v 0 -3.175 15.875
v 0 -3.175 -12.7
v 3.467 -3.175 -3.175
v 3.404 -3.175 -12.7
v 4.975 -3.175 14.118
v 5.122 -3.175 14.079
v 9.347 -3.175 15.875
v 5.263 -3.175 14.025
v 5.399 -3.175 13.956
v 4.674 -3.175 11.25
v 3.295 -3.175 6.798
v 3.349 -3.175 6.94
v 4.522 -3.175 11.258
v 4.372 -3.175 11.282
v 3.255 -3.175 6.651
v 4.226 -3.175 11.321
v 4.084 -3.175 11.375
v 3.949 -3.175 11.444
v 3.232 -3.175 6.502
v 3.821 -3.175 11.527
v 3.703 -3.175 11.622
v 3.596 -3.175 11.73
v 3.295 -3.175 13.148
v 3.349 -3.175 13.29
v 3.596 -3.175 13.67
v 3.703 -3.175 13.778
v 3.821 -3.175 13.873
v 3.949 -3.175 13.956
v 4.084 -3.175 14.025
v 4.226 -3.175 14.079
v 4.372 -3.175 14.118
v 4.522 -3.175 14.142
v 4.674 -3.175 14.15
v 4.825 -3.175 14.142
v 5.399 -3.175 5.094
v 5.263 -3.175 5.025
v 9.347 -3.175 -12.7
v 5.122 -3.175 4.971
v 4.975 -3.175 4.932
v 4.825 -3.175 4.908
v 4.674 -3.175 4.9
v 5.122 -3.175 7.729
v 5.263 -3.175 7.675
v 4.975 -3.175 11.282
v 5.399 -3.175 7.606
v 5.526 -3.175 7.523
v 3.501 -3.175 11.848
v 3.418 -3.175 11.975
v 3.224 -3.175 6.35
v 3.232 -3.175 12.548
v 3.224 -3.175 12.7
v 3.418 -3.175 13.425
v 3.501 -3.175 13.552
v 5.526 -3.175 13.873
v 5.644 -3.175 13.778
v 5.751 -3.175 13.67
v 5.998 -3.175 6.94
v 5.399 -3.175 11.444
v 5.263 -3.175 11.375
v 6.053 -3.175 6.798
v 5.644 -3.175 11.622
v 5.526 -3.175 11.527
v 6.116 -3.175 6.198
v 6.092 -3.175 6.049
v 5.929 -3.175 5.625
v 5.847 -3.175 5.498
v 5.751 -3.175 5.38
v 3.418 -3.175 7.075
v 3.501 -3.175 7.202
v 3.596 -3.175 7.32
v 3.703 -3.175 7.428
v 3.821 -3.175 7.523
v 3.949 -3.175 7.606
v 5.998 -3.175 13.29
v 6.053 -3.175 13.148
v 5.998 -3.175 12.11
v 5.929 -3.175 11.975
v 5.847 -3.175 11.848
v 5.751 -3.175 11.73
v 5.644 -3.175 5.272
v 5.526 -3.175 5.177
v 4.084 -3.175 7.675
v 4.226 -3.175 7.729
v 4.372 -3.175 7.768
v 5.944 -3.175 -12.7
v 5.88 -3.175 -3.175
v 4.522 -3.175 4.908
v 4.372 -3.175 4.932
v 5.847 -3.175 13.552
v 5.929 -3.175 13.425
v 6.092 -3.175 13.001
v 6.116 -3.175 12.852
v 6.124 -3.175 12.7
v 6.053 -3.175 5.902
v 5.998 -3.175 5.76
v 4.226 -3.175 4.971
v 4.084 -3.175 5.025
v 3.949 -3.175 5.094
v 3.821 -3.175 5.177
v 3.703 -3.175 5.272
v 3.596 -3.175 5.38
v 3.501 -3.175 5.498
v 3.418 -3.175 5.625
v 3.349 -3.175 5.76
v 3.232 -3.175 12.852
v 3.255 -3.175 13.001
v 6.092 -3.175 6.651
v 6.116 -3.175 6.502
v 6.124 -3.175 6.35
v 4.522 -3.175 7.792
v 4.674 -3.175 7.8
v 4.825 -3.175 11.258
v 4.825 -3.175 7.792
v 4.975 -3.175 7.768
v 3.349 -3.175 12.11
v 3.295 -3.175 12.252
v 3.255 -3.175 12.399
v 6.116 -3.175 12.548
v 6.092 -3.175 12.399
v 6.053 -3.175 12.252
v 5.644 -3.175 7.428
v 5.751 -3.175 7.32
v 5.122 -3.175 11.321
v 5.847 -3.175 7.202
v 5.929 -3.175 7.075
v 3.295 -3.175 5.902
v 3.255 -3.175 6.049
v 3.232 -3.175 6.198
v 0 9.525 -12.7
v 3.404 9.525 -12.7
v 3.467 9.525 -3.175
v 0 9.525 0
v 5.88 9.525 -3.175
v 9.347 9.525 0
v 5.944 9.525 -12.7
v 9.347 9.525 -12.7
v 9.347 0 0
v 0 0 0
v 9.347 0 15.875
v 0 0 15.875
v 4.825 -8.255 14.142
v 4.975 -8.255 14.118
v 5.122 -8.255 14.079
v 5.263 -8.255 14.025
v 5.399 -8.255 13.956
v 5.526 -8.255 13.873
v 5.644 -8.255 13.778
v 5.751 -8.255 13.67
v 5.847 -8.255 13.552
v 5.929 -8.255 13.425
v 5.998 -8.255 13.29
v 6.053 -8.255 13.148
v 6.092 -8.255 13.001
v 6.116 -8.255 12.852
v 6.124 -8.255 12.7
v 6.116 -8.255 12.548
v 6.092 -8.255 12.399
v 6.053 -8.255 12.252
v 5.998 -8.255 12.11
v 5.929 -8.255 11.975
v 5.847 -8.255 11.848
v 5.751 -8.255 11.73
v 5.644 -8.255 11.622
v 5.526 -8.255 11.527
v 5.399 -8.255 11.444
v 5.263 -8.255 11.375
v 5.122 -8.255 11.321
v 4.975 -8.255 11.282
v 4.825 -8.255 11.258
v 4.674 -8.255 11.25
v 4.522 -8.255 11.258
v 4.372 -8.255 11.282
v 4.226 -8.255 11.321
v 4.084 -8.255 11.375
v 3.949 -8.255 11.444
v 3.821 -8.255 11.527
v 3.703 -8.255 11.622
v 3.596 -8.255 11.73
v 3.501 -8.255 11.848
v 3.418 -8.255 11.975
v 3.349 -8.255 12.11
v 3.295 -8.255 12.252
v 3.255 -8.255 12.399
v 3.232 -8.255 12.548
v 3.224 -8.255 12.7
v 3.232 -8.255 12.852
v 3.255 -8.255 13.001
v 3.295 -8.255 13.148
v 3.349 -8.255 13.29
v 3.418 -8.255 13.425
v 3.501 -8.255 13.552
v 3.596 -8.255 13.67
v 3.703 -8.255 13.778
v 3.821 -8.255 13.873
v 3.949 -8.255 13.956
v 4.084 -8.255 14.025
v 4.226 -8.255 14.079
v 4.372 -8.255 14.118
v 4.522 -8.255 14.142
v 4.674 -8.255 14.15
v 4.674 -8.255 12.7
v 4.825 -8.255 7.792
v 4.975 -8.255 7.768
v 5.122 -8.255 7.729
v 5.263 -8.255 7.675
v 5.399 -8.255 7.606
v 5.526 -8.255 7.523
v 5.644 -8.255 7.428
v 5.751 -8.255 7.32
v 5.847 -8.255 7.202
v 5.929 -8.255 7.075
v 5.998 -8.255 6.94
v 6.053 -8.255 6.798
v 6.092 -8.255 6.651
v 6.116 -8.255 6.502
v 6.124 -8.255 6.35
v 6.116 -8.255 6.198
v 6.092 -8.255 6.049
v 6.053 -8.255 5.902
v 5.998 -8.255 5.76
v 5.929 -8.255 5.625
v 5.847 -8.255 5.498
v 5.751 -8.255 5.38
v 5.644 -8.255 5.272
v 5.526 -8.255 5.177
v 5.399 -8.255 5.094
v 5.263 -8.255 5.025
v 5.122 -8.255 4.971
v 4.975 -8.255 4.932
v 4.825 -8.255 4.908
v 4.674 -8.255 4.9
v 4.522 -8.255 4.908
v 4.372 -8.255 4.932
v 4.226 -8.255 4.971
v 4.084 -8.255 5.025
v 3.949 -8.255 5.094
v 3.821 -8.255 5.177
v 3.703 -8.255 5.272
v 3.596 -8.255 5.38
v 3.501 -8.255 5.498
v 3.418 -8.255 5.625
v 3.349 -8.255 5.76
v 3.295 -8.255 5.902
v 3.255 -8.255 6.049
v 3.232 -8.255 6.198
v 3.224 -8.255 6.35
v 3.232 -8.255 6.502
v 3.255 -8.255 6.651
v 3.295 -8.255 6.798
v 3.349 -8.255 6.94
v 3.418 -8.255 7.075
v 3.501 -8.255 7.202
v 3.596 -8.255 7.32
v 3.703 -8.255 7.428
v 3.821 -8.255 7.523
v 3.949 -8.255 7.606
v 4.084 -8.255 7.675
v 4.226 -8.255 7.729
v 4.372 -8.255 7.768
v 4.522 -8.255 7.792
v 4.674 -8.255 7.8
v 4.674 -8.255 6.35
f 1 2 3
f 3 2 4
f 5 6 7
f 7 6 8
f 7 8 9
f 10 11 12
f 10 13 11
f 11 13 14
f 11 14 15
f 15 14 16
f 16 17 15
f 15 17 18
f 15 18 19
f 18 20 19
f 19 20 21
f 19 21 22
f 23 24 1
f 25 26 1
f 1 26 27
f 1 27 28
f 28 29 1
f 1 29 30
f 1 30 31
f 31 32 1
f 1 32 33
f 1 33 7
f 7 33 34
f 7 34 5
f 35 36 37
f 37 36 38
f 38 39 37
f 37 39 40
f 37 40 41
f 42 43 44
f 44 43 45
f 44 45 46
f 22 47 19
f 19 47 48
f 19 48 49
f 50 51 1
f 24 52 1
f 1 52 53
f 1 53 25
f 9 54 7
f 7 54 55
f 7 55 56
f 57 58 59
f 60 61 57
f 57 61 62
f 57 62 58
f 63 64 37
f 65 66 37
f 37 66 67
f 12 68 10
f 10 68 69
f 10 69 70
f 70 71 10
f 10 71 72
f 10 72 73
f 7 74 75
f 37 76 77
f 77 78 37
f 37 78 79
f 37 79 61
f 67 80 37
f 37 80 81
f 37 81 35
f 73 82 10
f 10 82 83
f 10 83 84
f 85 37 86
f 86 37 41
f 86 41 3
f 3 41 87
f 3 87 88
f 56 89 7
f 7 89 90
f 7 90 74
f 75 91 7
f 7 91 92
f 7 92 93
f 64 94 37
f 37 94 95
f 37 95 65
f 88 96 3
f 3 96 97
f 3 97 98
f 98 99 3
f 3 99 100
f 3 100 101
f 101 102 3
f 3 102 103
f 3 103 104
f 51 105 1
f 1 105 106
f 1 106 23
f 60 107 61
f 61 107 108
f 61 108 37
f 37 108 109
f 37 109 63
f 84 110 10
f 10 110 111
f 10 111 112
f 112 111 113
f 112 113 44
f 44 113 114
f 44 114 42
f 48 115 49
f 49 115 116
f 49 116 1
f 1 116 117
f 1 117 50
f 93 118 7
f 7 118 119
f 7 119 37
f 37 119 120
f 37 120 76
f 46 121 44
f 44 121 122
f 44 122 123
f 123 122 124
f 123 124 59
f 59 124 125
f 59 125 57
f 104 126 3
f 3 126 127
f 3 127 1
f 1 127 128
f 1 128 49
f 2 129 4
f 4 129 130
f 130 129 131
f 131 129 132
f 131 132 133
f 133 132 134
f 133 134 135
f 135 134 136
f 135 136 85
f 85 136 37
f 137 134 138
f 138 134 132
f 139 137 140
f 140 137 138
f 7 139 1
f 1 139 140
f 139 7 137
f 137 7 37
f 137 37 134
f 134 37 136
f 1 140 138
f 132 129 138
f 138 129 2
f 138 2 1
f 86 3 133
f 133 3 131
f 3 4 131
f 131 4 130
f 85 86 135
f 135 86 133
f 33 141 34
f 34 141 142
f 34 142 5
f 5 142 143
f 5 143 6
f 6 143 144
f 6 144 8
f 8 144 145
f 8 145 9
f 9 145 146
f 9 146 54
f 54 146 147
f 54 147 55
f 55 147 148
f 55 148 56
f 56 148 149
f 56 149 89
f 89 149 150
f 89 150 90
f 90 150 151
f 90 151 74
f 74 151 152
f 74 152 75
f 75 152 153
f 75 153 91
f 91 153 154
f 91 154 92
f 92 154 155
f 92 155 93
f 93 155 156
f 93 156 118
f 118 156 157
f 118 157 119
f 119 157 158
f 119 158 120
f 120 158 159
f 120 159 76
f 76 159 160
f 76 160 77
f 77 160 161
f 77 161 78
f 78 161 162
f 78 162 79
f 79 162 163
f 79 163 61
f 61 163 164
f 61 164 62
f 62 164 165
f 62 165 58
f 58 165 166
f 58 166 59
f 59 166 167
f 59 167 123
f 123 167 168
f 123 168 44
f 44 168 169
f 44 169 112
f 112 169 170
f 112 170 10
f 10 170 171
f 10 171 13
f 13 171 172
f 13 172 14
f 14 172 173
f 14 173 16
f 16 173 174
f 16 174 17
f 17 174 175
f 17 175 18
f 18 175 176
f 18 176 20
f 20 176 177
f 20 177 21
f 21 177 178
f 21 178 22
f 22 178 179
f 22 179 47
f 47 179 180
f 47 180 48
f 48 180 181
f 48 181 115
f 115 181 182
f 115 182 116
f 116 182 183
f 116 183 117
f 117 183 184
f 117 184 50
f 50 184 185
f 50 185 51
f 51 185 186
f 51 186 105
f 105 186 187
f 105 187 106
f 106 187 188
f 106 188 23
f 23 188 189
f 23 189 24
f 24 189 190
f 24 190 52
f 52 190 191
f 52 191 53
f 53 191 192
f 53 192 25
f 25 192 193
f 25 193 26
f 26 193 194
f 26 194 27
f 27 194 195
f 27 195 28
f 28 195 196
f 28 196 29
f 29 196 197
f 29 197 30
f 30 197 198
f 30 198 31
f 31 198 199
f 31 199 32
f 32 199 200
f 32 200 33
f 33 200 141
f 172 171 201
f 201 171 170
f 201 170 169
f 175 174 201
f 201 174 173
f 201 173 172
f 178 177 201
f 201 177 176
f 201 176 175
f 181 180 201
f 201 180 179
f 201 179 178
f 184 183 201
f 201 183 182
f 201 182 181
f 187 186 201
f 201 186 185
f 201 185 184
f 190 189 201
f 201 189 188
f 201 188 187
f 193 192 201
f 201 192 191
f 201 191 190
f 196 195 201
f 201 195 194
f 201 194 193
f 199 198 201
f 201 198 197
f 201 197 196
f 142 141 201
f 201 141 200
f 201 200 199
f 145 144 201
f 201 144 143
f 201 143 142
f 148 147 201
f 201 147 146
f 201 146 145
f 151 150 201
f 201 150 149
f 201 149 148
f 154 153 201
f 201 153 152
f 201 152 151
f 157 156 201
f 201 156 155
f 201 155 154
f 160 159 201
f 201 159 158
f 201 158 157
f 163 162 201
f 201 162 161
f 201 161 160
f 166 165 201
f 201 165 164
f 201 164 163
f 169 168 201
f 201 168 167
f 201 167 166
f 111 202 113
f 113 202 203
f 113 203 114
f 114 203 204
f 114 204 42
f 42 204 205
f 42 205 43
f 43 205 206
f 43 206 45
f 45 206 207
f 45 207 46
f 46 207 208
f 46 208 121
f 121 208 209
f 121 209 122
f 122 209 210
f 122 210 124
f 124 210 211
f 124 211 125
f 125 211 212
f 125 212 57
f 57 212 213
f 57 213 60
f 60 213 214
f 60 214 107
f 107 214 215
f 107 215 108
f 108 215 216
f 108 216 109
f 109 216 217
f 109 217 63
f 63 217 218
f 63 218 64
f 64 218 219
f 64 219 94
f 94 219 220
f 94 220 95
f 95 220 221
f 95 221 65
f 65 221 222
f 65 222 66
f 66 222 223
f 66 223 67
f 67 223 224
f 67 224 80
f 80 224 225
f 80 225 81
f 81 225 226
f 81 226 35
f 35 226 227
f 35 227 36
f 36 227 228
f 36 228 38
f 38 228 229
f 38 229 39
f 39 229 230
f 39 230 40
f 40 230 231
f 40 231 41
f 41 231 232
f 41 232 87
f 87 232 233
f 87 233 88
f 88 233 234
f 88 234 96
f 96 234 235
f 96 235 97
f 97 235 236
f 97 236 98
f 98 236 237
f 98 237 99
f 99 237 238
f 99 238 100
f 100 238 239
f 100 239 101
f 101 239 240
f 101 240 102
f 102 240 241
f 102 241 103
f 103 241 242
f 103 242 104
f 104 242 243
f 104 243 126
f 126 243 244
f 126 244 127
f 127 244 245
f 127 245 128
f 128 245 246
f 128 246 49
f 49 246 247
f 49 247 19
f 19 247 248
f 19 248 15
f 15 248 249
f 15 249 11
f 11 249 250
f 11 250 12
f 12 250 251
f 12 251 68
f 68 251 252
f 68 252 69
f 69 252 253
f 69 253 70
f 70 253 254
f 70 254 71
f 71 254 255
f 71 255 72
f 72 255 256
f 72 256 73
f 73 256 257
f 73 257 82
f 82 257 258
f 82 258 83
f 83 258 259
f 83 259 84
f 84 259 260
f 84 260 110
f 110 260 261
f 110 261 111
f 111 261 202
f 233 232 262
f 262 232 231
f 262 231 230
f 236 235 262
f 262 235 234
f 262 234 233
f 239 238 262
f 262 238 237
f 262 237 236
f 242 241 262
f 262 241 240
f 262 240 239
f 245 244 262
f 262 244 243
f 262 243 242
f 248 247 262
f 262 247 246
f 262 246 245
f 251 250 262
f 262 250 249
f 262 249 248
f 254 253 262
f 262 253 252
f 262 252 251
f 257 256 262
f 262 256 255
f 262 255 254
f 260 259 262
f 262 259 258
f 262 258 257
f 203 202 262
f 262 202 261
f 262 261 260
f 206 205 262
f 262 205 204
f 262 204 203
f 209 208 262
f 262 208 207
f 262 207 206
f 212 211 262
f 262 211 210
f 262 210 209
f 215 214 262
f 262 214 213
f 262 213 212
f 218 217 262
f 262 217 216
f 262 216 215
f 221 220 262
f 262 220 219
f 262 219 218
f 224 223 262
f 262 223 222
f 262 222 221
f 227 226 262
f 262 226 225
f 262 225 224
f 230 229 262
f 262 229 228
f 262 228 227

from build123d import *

# Parameters (mm, degrees)
SKETCH2_W           = 15.875
SKETCH2_H           = 3.175
BOSS_EXTRUDE1_DEPTH = 9.3472
SKETCH3_W           = 2.413
SKETCH3_H           = 9.525
CUT_EXTRUDE1_DEPTH  = 13.7
SKETCH4_R           = 1.45
BOSS_EXTRUDE2_DEPTH = 5.08


with BuildPart() as part:
    # Sketch2 → Boss-Extrude1 (new body)
    with BuildSketch(Plane(origin=(0, 0, 0), x_dir=(0, 0, -1), z_dir=(1, 0, 0))):
        with Locations((-7.9375, -1.5875)):
            Rectangle(SKETCH2_W, SKETCH2_H)
        Polygon((0, 9.525), (0, 0), (0, -3.175), (12.7, -3.175), (12.7, 9.525), align=None)
    extrude(amount=BOSS_EXTRUDE1_DEPTH)

    # Sketch3 → Cut-Extrude1 (cut, through all)
    with BuildSketch(Plane(origin=(0, 9.525, 0), x_dir=(1, 0, 0), z_dir=(0, 1, 0))):
        with Locations((4.6736, 7.9375)):
            Rectangle(SKETCH3_W, SKETCH3_H)
        Polygon((3.4671, 3.175), (3.4671, 12.7), (3.4036, 12.7), align=None)
        Polygon((5.9436, 12.7), (5.8801, 12.7), (5.8801, 3.175), align=None)
    extrude(amount=-CUT_EXTRUDE1_DEPTH, mode=Mode.SUBTRACT)

    # Sketch4 → Boss-Extrude2 (add)
    with BuildSketch(Plane.XZ.offset(3.175)):
        with Locations((4.6736, 12.7)):
            Circle(SKETCH4_R)
        with Locations((4.6736, 6.35)):
            Circle(SKETCH4_R)
    extrude(amount=BOSS_EXTRUDE2_DEPTH)


solid = part.part
